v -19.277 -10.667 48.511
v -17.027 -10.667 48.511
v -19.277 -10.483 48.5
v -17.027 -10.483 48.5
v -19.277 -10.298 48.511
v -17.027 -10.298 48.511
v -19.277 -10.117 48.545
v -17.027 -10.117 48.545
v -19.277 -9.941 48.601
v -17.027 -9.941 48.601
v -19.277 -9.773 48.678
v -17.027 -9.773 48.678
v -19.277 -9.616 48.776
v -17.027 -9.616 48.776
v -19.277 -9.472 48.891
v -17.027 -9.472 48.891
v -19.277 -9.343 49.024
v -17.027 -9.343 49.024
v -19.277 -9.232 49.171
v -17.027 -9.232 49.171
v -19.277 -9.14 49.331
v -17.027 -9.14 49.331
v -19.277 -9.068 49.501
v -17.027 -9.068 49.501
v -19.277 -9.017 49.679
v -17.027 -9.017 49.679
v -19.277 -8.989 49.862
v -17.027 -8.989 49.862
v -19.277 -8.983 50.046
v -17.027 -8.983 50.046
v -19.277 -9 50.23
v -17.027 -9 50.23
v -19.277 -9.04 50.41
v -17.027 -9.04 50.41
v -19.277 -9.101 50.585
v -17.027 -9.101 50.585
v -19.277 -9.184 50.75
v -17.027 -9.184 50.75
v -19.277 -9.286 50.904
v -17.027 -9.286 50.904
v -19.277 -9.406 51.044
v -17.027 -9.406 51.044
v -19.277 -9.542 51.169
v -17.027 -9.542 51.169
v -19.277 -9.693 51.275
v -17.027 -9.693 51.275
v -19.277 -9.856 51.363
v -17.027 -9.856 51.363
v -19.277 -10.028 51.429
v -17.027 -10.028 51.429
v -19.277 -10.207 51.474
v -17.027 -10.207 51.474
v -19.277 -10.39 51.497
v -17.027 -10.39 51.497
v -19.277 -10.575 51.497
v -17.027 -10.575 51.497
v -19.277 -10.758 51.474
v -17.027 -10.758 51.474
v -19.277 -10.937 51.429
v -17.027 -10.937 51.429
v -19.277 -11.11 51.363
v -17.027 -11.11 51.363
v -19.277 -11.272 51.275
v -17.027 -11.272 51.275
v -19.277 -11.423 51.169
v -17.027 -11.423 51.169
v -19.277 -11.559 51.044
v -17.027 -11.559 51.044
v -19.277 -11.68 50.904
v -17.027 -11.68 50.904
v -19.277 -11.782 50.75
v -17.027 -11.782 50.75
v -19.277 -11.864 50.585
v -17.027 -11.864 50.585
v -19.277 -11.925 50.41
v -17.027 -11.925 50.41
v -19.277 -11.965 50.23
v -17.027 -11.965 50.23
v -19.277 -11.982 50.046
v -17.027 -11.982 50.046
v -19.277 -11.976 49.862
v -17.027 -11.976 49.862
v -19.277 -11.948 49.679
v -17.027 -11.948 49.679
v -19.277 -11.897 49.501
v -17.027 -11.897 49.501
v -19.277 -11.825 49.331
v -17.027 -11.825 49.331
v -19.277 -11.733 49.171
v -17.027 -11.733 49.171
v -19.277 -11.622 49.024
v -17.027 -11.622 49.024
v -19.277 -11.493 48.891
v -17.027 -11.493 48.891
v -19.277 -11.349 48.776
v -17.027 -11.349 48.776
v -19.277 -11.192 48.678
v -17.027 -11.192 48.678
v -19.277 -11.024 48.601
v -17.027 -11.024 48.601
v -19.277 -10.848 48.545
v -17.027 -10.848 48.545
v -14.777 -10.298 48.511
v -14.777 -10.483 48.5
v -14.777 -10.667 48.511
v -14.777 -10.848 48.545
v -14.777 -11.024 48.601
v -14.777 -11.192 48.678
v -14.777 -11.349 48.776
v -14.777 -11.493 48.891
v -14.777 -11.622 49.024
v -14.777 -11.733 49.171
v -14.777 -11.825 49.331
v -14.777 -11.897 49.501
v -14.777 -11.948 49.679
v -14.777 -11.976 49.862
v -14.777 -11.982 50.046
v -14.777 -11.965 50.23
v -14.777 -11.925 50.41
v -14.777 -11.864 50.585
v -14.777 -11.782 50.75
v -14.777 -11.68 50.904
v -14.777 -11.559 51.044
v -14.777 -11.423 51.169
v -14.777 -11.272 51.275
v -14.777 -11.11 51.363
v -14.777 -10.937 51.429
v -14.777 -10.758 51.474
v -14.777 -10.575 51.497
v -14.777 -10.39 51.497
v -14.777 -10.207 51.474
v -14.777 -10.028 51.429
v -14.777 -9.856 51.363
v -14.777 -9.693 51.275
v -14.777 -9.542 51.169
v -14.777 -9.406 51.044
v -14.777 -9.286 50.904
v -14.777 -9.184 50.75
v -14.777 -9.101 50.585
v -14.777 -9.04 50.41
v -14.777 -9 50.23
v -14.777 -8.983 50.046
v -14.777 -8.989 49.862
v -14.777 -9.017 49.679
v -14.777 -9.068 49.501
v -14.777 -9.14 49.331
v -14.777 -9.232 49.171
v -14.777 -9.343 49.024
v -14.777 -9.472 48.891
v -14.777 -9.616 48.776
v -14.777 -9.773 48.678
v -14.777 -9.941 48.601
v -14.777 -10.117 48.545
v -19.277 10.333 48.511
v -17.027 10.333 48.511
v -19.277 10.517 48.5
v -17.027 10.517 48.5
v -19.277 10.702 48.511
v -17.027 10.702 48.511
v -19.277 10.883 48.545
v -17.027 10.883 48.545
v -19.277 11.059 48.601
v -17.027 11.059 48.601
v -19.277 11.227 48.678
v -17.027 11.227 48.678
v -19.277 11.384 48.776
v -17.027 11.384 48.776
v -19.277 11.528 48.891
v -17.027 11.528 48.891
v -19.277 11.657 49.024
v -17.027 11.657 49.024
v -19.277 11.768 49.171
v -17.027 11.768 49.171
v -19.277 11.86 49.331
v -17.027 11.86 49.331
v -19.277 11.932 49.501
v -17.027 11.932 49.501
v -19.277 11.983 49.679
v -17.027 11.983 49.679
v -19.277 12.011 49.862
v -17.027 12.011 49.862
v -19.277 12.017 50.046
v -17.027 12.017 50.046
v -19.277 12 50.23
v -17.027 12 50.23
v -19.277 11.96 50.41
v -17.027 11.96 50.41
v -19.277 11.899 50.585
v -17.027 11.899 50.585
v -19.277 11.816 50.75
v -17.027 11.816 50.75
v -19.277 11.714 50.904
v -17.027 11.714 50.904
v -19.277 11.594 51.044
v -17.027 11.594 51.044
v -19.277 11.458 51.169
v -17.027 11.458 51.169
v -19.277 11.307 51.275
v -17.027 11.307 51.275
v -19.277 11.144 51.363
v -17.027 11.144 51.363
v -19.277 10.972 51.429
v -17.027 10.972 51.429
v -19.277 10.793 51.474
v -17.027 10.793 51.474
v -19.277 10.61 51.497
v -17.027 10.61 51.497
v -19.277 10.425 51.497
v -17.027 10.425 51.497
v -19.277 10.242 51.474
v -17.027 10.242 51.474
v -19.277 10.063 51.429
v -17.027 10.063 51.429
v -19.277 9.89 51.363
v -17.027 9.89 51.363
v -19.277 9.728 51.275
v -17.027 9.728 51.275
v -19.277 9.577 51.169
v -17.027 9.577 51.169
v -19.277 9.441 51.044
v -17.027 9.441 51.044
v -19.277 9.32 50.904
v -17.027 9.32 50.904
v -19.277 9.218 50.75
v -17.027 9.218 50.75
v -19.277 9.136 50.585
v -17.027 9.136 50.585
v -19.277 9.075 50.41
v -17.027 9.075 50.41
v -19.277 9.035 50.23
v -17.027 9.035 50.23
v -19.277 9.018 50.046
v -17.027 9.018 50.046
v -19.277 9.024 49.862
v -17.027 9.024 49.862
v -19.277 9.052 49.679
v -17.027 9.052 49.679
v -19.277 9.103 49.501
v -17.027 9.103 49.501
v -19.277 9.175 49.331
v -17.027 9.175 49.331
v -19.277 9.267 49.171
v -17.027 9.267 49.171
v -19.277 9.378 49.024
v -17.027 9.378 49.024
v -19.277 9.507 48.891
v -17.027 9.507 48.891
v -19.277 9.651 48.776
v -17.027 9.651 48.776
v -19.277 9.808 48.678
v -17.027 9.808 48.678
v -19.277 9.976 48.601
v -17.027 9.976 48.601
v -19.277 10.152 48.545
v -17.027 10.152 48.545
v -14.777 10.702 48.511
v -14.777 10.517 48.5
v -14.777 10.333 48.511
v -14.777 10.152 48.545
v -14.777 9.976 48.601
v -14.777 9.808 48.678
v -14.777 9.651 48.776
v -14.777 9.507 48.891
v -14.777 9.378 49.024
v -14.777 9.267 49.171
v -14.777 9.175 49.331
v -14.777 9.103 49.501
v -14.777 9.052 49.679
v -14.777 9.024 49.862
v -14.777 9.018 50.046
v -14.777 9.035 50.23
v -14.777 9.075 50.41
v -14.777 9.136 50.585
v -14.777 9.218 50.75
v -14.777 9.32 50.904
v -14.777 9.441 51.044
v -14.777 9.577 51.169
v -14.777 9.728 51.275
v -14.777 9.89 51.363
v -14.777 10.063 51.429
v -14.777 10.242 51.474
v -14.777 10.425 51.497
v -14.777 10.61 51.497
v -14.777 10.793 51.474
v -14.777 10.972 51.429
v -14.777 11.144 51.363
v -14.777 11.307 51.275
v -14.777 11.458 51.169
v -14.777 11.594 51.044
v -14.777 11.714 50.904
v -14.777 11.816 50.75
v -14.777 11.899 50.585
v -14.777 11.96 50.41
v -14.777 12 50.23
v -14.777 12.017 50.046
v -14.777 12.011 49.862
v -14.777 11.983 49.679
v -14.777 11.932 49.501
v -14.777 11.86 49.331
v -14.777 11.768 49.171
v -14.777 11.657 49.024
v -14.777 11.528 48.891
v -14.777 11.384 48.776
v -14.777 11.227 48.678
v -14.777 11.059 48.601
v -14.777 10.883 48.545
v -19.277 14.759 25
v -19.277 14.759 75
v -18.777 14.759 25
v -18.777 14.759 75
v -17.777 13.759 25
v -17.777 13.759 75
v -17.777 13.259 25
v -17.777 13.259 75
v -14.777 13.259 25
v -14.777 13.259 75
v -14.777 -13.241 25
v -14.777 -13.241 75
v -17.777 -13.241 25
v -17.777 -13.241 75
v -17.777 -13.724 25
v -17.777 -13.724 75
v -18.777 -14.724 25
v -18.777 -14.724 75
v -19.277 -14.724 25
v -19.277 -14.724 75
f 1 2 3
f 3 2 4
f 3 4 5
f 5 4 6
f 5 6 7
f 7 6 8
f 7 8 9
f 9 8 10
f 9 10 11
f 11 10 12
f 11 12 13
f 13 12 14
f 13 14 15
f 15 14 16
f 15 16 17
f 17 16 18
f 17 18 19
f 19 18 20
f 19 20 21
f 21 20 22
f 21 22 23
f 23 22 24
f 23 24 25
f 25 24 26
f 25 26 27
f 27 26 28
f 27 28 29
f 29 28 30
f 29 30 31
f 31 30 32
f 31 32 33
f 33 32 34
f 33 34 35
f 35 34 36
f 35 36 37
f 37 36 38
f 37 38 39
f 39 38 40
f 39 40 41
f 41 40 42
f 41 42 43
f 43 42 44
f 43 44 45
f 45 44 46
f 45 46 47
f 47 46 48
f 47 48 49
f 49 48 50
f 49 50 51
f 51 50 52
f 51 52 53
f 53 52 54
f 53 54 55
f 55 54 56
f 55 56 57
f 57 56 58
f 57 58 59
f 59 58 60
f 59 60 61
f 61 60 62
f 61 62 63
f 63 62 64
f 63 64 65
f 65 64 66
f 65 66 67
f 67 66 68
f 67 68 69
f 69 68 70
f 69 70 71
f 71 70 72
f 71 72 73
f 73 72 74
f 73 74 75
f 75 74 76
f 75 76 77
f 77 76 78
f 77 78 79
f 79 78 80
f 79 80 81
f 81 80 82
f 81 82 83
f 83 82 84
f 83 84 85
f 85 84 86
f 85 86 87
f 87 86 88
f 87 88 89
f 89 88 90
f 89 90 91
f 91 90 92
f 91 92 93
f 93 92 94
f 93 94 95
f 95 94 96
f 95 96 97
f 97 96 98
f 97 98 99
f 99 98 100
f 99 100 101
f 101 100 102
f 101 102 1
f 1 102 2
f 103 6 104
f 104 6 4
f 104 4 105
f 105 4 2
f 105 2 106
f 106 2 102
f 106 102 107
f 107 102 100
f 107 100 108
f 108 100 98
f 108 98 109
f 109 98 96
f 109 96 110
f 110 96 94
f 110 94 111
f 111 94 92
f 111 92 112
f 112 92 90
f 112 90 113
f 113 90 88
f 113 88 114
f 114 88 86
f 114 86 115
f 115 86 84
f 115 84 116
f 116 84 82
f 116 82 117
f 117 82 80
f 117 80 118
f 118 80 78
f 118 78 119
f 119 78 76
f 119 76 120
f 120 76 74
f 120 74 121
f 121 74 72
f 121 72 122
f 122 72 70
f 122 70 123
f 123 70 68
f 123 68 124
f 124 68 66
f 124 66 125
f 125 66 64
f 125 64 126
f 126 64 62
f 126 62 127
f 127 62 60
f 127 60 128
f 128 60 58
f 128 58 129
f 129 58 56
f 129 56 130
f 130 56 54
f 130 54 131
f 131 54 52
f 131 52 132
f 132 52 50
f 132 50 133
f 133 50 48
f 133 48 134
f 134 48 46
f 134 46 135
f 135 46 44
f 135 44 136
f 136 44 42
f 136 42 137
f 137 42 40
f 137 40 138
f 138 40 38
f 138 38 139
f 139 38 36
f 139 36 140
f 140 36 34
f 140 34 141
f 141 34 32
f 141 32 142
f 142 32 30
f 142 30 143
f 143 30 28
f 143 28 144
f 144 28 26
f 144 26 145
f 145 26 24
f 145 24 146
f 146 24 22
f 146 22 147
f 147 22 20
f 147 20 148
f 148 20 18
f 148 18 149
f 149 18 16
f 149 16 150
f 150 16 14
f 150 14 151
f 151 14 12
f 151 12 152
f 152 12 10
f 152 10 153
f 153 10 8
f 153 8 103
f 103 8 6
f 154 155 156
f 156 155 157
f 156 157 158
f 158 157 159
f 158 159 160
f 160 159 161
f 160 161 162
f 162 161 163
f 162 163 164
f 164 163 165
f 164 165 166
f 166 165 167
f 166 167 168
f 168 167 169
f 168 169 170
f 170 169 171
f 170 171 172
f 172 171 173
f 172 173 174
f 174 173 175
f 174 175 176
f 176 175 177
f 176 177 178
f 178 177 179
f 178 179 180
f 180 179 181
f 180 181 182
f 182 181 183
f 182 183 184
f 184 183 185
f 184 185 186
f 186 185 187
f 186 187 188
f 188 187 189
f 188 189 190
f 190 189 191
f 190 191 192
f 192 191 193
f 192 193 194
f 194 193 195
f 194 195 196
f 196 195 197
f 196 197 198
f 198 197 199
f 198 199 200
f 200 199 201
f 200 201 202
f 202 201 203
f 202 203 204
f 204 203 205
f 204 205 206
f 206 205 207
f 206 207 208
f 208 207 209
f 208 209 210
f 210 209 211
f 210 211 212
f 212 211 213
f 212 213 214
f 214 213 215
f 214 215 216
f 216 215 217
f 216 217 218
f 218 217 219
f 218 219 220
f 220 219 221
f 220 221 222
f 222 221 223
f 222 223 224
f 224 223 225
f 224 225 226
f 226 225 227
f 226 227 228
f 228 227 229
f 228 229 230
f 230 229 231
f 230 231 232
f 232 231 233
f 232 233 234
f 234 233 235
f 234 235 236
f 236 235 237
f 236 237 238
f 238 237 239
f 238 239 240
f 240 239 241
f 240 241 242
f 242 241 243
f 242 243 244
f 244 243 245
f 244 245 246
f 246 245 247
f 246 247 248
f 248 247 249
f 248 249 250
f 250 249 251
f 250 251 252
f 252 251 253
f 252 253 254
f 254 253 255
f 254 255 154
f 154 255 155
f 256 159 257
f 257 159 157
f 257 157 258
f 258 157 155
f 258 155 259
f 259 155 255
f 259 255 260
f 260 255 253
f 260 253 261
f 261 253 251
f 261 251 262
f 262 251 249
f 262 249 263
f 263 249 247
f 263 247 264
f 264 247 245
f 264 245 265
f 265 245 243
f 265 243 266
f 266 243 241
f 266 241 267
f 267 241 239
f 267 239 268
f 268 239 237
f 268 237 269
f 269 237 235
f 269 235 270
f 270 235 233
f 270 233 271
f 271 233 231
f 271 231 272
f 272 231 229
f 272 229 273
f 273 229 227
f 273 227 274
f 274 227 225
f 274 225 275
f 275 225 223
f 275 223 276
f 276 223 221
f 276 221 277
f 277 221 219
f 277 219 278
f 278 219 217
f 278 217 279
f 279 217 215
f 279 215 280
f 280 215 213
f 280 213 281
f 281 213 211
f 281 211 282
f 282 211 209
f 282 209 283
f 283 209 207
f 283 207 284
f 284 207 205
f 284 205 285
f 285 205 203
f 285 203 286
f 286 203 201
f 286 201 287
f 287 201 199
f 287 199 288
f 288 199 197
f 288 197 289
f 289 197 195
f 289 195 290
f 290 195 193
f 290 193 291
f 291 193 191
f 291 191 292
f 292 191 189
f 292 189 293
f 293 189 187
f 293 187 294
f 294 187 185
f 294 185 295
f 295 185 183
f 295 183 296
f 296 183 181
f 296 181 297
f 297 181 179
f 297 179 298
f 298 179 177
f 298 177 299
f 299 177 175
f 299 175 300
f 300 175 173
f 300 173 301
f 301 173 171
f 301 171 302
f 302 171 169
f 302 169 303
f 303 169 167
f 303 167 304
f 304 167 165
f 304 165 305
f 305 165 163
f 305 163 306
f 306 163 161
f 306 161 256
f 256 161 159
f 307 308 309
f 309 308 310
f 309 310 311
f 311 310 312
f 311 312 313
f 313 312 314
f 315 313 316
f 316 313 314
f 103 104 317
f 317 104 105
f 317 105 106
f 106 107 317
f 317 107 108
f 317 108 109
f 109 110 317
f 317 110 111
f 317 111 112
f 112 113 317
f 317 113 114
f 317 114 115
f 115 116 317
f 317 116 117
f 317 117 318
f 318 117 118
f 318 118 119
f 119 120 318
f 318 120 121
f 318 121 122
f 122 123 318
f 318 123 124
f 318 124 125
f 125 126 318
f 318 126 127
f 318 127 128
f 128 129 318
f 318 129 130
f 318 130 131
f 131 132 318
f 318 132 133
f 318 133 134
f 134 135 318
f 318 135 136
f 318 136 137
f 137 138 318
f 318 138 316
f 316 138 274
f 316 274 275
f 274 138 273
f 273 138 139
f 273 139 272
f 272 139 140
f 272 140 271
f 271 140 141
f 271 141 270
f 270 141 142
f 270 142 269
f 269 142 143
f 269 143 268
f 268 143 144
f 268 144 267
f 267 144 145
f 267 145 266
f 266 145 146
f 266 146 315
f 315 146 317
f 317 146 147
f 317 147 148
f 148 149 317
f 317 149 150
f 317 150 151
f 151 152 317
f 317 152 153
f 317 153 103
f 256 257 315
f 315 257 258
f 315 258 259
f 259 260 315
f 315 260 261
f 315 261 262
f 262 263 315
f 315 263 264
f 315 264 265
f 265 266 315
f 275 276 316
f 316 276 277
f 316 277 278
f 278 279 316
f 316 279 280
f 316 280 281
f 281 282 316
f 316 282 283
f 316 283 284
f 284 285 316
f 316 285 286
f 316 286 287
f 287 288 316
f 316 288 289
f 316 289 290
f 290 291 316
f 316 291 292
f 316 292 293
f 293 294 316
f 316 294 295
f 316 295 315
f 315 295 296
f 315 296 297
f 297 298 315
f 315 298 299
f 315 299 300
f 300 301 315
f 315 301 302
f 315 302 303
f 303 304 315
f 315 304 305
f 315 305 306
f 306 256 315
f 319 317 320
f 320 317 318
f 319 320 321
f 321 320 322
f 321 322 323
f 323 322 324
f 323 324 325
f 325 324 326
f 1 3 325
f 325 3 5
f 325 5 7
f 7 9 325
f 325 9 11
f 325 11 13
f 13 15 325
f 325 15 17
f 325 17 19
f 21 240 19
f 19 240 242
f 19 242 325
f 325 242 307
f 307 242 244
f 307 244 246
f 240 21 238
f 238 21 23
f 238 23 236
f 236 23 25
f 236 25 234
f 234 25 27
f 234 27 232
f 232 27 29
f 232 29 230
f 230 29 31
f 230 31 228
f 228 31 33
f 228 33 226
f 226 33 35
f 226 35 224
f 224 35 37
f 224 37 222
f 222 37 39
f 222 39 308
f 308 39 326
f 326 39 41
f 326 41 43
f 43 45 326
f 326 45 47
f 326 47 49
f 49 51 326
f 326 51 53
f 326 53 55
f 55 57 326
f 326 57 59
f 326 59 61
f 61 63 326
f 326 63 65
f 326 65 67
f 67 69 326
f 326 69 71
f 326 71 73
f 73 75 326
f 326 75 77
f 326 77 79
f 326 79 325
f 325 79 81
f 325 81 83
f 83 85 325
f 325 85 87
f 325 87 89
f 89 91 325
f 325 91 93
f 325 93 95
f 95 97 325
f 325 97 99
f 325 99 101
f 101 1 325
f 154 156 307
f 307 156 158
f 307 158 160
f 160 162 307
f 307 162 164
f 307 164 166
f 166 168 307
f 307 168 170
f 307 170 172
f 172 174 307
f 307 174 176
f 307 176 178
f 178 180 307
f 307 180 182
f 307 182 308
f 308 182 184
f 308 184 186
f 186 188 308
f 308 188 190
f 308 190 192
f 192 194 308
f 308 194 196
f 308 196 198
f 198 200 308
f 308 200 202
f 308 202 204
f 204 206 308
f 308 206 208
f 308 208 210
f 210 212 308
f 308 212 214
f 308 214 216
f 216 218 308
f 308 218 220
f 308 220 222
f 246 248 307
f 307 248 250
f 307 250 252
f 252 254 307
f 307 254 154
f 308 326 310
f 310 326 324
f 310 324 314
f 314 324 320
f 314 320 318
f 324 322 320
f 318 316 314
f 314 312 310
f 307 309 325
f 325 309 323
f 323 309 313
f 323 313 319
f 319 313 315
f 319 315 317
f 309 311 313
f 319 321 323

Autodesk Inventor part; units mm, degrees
ref_plane "YZ Plane" through (0, 0, 0) normal (1, 0, 0) x (0, 1, 0)
ref_plane "XZ Plane" through (0, 0, 0) normal (0, 1, 0) x (-1, 0, 0)
ref_plane "XY Plane" through (0, 0, 0) normal (0, 0, 1) x (1, 0, 0)
sketch "Sketch1" plane through (0, 0, 0) normal (0, 0, 1) x (1, 0, 0)
  line L0 (-19.2766, 29.5) -> (-19.2766, -29.4652) projected
  line L1 (-18.2766, -29.4652) -> (-19.2766, -29.4652) projected
  line L2 (-16.2766, -27.4652) -> (-18.2766, -29.4652) projected
  line L3 (-16.2766, -26.5) -> (-16.2766, -27.4652) projected
  line L4 (-16.2766, -26.5) -> (28.7234, -26.5) construction
  arc A0 (28.7234, -26.5) -> (30.7234, -24.5) centre (28.7234, -24.5) ccw projected
  line L5 (30.7234, -24.5) -> (30.7234, -19.5) projected
  line L6 (30.7234, -19.5) -> (27.7234, -22.5) projected
  line L7 (27.7234, -22.5) -> (-14.2766, -22.5) construction
  arc A1 (-16.2766, -20.5) -> (-14.2766, -22.5) centre (-14.2766, -20.5) ccw construction
  line L8 (-16.2766, -20.5) -> (-16.2766, 20.5) construction
  arc A2 (-14.2766, 22.5) -> (-16.2766, 20.5) centre (-14.2766, 20.5) ccw construction
  line L9 (-14.2766, 22.5) -> (27.7234, 22.5) construction
  line L10 (27.7234, 22.5) -> (30.7234, 19.5) projected
  line L11 (30.7234, 19.5) -> (30.7234, 24.5) projected
  arc A3 (30.7234, 24.5) -> (28.7234, 26.5) centre (28.7234, 24.5) ccw projected
  line L12 (28.7234, 26.5) -> (-16.2766, 26.5) construction
  line L13 (-16.2766, 26.5) -> (-16.2766, 27.5) projected
  line L14 (-16.2766, 27.5) -> (-18.2766, 29.5) projected
  line L15 (-18.2766, 29.5) -> (-19.2766, 29.5) projected
  line L16 (-16.2766, -26.5) -> (-10.2766, -26.5)
  line L17 (-10.2766, -26.5) -> (-10.2766, 26.5)
  line L18 (-10.2766, 26.5) -> (-16.2766, 26.5)
  line L19 (-10.2766, 26.5) -> (-16.2766, 26.5)
  line L20 (-19.2766, -29.4652) -> (-19.2766, 29.5)
  line L21 (-18.2766, 29.5) -> (-19.2766, 29.5)
  line L22 (-18.2766, 29.5) -> (-16.2766, 27.5)
  line L23 (-16.2766, 27.5) -> (-16.2766, 26.5)
  line L24 (-19.2766, -29.4652) -> (-18.2766, -29.4652)
  line L25 (-18.2766, -29.4652) -> (-16.2766, -27.4652)
  line L26 (-16.2766, -27.4652) -> (-16.2766, -26.5)
  point P0 (0, 0)
  dimension "d0" = 6
extrude "Extrusion1" add sketch "Sketch1" along normal blind 100
sketch "Sketch2" plane through (-10.2766, -26.5, 0) normal (1, 0, 0) x (0, 0, -1)
  line L0 (0, -2.9652) -> (0, -0.9652) projected
  line L1 (-100, 56) -> (-100, -2.9652) projected
  line L2 (0, -2.9652) -> (-100, -2.9652) projected
  line L3 (-100, 56) -> (-100, -2.9652)
  line L4 (0, 56) -> (0, -2.9652) projected
  line L5 (0, 56) -> (-100, 56) projected
  circle A0 centre (-50, 5.5174) radius 3
  circle A1 centre (-50, 47.5174) radius 3
  point P0 (0, 26.5)
  dimension "d5" = 6
  dimension "d6" = 6
extrude "Extrusion2" cut sketch "Sketch2" against normal blind 100 contours A0 | A1
scale "Scale1" factors (0.5, 0.5, 0.5) then translate (-9.6383, 0.0087, 25) bodies 1
properties part number "batteryholder9"
